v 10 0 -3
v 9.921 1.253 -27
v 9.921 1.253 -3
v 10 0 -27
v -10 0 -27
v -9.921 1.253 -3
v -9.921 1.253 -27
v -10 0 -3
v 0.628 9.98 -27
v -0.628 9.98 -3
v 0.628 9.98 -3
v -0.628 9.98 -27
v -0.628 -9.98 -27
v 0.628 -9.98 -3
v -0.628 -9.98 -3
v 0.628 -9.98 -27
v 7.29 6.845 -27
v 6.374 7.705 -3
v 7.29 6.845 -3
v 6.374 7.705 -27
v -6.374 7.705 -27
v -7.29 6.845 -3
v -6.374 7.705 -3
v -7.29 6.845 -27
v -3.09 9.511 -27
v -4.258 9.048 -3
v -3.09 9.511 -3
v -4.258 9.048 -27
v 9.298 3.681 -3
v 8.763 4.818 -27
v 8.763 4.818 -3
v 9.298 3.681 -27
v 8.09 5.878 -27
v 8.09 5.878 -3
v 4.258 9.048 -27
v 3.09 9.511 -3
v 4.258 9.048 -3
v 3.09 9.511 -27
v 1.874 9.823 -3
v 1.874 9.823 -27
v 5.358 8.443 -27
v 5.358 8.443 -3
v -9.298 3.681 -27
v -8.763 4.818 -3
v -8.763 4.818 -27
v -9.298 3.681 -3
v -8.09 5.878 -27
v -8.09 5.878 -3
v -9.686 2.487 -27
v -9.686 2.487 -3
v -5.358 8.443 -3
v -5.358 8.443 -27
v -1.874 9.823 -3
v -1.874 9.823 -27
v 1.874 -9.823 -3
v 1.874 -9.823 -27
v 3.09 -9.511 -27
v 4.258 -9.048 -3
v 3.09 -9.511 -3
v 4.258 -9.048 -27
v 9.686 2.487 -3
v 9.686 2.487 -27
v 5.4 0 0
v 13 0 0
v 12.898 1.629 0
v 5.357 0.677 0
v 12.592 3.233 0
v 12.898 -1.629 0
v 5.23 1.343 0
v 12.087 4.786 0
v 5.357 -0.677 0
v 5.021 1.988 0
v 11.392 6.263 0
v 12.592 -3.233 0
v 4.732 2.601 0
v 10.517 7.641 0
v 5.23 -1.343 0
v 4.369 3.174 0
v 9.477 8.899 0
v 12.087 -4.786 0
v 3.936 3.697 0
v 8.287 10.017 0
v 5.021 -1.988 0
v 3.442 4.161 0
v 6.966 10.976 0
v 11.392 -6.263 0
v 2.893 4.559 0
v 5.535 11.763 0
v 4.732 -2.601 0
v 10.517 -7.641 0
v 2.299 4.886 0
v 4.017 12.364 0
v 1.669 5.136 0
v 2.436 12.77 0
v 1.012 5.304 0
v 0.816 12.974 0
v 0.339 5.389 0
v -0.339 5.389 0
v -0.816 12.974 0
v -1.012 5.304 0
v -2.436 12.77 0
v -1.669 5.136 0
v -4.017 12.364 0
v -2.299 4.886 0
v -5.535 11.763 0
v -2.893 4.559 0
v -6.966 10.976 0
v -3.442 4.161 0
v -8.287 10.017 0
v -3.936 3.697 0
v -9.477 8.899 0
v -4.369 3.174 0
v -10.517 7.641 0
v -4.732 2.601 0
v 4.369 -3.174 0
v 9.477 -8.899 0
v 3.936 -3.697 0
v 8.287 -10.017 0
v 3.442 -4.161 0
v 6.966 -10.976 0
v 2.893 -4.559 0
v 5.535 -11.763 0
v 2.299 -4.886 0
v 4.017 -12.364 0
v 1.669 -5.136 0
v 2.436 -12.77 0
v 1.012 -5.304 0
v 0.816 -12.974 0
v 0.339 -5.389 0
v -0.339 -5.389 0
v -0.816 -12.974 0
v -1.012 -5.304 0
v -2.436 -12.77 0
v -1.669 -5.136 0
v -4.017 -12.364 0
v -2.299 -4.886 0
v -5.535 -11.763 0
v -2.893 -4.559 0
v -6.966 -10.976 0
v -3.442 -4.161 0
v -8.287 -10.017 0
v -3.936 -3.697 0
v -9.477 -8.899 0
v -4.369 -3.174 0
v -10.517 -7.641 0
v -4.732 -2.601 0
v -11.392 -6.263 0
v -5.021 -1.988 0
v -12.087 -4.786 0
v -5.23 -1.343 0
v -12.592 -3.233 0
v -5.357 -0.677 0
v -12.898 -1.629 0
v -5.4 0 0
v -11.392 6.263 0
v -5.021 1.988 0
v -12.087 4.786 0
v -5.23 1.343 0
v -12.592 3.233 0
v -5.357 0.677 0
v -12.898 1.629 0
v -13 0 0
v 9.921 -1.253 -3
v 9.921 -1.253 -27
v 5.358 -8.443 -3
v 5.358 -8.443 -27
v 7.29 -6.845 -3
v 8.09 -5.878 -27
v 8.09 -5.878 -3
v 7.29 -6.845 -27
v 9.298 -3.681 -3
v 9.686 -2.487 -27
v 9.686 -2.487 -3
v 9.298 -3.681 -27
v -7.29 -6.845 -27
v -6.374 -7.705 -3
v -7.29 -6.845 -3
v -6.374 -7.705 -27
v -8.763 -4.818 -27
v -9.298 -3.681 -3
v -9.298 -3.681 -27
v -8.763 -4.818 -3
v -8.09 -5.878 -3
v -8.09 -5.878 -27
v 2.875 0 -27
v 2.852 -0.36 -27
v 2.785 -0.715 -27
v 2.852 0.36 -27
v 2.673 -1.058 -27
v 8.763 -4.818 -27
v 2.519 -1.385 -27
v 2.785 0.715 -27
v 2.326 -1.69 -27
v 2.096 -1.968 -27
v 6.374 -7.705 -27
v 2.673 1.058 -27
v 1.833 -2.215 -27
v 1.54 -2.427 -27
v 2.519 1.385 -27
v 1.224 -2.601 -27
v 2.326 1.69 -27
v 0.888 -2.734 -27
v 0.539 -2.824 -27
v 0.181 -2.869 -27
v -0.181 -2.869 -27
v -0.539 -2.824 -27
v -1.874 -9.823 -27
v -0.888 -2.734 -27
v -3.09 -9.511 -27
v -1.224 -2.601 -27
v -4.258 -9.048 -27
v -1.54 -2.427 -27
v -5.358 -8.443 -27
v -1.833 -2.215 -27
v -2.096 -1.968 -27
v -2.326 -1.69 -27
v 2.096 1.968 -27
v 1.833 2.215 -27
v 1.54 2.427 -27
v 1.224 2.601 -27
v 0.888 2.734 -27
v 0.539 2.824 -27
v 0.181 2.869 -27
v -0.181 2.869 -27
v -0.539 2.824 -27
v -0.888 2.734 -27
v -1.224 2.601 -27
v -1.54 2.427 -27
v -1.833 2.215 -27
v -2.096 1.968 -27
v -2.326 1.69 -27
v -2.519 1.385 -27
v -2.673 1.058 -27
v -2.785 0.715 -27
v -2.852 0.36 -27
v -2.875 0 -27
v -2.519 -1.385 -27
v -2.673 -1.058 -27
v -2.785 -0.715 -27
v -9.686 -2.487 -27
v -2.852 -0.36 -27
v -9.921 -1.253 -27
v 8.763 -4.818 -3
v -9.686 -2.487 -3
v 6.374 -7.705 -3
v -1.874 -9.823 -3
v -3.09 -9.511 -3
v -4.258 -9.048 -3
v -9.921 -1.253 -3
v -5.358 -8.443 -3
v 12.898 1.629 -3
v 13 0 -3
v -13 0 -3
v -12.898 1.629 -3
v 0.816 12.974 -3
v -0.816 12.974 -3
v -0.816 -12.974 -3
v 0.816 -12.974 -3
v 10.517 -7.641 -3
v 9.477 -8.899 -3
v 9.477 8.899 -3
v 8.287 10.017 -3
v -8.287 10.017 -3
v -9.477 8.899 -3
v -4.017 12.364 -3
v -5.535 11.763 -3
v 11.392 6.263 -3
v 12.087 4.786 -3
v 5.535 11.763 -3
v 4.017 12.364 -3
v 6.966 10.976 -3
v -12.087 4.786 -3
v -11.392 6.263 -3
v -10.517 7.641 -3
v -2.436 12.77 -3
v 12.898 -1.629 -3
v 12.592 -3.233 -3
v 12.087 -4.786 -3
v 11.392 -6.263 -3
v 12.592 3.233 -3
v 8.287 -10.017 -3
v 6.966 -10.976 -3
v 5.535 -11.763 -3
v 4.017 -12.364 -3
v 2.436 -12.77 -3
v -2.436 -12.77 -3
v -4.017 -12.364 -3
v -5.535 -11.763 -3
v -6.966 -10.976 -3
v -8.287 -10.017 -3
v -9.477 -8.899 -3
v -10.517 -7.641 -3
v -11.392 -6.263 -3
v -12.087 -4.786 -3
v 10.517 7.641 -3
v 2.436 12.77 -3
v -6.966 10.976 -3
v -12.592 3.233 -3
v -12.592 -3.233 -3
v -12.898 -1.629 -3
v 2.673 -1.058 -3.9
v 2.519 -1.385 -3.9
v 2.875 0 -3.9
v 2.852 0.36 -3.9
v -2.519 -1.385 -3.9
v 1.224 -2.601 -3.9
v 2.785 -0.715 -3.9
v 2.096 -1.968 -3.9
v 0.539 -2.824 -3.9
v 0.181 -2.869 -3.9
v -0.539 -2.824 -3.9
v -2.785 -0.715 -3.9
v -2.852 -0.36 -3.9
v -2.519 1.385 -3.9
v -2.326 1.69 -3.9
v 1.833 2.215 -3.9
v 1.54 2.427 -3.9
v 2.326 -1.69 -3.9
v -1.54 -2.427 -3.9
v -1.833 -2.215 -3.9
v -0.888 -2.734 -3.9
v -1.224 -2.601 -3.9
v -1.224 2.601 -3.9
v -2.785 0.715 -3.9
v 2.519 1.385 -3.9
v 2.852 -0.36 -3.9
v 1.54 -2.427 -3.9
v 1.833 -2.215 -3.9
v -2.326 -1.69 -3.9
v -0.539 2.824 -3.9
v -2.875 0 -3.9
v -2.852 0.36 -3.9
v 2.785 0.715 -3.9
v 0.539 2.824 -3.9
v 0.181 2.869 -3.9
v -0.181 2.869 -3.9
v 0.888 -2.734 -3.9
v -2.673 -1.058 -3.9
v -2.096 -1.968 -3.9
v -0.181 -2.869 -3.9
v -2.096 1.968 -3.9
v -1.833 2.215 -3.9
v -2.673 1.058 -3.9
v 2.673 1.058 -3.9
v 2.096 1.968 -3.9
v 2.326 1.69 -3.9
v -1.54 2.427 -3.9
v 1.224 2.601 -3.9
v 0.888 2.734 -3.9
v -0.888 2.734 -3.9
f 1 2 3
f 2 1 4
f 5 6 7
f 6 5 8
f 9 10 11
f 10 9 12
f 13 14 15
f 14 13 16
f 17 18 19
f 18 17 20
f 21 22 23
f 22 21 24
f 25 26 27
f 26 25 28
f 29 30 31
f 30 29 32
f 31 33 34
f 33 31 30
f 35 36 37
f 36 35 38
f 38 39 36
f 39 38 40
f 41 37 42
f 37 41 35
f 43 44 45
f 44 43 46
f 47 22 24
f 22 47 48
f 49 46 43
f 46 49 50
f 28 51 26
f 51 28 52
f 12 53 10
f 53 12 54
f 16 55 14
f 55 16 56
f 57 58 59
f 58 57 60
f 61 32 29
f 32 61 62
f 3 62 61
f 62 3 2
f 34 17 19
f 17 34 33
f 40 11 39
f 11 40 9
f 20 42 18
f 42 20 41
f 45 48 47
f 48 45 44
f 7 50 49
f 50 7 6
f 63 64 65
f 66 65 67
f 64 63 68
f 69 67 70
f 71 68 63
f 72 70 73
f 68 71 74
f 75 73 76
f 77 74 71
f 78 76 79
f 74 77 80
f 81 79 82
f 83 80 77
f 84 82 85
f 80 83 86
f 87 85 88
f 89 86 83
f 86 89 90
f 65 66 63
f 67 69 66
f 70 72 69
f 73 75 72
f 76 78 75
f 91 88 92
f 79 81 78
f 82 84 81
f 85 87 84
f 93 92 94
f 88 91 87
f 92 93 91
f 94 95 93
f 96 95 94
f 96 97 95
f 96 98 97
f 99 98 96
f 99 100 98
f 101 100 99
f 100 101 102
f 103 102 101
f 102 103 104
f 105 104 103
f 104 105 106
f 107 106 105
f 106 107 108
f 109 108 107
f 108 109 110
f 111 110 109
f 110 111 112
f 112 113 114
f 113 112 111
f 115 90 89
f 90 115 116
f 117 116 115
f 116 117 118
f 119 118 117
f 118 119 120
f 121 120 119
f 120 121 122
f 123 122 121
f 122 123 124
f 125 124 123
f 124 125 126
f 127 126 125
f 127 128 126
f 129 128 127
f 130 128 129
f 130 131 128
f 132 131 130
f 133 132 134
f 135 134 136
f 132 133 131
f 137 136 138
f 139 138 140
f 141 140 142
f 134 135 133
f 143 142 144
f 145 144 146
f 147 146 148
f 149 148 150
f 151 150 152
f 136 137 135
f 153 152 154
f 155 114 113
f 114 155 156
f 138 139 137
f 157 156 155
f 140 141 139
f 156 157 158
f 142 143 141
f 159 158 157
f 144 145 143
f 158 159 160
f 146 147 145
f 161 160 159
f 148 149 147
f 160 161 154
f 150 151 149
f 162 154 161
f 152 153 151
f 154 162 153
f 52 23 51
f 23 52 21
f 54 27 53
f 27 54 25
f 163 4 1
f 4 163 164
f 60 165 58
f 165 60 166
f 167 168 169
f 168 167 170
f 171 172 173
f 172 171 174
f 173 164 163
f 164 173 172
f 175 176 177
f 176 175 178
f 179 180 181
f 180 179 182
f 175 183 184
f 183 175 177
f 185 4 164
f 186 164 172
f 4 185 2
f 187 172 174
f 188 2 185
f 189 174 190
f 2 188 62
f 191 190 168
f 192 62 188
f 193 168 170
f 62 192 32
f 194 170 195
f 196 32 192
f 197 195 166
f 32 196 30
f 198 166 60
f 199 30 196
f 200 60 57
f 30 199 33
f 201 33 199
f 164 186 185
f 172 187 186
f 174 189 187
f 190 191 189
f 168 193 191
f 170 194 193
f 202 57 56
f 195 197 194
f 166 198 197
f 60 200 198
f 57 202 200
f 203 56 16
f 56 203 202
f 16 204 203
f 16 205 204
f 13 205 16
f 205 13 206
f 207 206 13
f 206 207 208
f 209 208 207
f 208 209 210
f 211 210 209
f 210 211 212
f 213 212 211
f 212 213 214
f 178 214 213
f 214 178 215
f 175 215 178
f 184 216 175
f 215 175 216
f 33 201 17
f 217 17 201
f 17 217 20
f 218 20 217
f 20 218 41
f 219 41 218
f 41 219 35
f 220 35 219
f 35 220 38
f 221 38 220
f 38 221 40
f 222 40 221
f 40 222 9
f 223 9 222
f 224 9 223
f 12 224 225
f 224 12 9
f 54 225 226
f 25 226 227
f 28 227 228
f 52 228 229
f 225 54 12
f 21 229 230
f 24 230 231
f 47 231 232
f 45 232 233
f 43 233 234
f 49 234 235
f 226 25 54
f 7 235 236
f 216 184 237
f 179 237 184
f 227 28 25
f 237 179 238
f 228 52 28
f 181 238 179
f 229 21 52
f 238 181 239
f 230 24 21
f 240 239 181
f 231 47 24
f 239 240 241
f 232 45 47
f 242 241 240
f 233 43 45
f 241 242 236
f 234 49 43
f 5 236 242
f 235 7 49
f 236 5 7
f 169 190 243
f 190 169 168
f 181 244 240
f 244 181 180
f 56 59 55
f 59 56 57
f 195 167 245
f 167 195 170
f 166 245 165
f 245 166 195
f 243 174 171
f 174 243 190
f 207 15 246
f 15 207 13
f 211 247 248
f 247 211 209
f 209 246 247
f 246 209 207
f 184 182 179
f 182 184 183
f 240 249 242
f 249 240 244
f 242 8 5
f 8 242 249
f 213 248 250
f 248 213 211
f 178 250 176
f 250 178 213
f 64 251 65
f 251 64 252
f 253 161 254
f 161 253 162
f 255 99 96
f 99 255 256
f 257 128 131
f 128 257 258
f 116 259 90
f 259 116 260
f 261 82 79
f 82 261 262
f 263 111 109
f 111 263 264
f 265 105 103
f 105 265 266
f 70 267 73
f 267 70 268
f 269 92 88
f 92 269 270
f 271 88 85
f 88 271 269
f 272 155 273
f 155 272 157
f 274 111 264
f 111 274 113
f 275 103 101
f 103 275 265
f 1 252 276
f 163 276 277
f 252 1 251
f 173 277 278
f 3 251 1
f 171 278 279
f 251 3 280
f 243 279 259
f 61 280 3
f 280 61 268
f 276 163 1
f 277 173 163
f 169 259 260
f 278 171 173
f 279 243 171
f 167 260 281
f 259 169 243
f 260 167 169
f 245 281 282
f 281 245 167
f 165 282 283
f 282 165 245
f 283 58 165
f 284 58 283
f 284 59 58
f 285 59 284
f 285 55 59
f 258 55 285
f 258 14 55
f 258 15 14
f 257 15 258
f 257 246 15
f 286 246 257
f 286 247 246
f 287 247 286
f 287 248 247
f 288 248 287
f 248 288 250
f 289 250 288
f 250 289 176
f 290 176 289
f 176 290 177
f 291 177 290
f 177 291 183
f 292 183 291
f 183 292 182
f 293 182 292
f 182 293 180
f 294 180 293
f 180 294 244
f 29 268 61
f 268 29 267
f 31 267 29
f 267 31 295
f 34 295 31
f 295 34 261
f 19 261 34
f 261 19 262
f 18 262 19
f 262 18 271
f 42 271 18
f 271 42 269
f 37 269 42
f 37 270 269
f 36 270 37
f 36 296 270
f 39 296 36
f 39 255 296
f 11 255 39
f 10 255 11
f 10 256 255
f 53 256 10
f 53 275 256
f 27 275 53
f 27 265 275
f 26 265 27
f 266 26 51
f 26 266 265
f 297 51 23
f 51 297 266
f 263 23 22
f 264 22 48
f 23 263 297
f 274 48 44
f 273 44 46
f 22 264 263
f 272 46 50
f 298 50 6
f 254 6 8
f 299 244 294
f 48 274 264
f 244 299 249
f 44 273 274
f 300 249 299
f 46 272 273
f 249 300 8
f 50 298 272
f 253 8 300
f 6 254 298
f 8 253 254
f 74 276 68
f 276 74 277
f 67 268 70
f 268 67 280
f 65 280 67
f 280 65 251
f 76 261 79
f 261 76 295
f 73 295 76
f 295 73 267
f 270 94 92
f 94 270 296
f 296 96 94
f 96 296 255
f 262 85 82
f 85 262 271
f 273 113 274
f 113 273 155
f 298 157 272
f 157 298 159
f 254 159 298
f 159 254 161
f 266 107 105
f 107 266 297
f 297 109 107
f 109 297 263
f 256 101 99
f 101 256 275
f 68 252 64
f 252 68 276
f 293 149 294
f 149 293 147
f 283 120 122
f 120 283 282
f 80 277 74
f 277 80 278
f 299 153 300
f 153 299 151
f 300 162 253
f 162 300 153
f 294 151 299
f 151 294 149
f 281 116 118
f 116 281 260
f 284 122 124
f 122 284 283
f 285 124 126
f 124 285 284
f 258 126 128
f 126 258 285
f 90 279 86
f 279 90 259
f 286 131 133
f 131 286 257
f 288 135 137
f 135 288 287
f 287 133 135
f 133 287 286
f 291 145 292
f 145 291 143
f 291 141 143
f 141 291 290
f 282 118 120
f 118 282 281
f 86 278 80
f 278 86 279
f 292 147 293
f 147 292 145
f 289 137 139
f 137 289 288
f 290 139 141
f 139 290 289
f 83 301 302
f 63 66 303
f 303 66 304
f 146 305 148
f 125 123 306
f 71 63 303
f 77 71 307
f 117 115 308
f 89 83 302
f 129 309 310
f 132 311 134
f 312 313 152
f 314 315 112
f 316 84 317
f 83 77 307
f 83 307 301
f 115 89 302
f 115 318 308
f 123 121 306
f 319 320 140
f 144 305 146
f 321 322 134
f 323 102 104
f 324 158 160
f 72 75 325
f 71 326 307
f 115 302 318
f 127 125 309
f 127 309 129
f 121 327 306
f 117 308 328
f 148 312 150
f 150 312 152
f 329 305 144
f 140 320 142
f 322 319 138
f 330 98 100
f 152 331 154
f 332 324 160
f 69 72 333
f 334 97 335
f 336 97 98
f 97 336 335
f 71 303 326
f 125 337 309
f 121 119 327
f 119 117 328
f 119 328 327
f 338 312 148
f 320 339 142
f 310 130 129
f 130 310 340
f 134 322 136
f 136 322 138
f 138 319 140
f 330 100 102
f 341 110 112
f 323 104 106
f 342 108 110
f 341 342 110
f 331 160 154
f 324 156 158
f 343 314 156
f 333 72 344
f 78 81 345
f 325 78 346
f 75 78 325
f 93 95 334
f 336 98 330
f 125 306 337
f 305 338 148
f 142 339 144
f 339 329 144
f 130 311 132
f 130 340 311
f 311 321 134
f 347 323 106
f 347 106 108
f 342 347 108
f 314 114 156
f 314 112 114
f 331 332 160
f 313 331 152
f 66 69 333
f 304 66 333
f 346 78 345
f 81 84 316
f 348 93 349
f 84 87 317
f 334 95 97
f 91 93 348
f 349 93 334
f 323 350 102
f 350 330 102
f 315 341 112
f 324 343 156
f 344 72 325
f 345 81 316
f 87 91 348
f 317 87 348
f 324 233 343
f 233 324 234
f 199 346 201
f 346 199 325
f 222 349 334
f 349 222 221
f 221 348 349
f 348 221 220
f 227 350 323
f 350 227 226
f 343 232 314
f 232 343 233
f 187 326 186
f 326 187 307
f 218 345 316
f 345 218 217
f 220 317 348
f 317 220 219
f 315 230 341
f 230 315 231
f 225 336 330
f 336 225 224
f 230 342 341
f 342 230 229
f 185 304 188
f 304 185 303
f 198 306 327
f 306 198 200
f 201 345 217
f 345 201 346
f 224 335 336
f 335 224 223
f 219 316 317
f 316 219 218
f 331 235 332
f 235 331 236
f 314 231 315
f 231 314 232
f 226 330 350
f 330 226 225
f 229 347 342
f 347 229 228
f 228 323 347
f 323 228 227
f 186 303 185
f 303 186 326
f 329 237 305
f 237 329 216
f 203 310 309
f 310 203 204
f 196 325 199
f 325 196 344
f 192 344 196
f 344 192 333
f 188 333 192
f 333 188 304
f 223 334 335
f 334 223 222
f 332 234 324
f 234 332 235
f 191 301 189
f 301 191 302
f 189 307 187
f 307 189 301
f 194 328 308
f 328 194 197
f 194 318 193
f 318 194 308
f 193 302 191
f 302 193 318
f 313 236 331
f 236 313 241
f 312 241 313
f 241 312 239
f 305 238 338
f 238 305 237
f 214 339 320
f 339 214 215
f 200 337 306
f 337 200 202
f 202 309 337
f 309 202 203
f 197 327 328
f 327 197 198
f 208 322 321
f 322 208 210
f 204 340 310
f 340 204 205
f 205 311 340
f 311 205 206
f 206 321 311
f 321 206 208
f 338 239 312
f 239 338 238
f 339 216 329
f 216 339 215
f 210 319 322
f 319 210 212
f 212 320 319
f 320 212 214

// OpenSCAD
$fn = 50;


difference() {
	union() {
		translate(v = [0, 0, -27.0000000000]) {
			cylinder(h = 27, r = 10.0000000000);
		}
		translate(v = [0, 0, -3.0000000000]) {
			cylinder(h = 3, r = 13.0000000000);
		}
	}
	union() {
		translate(v = [0, 0, 0]) {
			rotate(a = [0, 0, 0]) {
				difference() {
					union() {
						#translate(v = [0, 0, -27.0000000000]) {
							cylinder(h = 27, r = 2.6000000000);
						}
						#translate(v = [0, 0, -3.9000000000]) {
							cylinder(h = 3.9000000000, r1 = 2.8750000000, r2 = 5.4000000000);
						}
						#translate(v = [0, 0, -27.0000000000]) {
							cylinder(h = 27, r = 2.8750000000);
						}
						#translate(v = [0, 0, -27.0000000000]) {
							cylinder(h = 27, r = 2.6000000000);
						}
					}
					union();
				}
			}
		}
	}
}
